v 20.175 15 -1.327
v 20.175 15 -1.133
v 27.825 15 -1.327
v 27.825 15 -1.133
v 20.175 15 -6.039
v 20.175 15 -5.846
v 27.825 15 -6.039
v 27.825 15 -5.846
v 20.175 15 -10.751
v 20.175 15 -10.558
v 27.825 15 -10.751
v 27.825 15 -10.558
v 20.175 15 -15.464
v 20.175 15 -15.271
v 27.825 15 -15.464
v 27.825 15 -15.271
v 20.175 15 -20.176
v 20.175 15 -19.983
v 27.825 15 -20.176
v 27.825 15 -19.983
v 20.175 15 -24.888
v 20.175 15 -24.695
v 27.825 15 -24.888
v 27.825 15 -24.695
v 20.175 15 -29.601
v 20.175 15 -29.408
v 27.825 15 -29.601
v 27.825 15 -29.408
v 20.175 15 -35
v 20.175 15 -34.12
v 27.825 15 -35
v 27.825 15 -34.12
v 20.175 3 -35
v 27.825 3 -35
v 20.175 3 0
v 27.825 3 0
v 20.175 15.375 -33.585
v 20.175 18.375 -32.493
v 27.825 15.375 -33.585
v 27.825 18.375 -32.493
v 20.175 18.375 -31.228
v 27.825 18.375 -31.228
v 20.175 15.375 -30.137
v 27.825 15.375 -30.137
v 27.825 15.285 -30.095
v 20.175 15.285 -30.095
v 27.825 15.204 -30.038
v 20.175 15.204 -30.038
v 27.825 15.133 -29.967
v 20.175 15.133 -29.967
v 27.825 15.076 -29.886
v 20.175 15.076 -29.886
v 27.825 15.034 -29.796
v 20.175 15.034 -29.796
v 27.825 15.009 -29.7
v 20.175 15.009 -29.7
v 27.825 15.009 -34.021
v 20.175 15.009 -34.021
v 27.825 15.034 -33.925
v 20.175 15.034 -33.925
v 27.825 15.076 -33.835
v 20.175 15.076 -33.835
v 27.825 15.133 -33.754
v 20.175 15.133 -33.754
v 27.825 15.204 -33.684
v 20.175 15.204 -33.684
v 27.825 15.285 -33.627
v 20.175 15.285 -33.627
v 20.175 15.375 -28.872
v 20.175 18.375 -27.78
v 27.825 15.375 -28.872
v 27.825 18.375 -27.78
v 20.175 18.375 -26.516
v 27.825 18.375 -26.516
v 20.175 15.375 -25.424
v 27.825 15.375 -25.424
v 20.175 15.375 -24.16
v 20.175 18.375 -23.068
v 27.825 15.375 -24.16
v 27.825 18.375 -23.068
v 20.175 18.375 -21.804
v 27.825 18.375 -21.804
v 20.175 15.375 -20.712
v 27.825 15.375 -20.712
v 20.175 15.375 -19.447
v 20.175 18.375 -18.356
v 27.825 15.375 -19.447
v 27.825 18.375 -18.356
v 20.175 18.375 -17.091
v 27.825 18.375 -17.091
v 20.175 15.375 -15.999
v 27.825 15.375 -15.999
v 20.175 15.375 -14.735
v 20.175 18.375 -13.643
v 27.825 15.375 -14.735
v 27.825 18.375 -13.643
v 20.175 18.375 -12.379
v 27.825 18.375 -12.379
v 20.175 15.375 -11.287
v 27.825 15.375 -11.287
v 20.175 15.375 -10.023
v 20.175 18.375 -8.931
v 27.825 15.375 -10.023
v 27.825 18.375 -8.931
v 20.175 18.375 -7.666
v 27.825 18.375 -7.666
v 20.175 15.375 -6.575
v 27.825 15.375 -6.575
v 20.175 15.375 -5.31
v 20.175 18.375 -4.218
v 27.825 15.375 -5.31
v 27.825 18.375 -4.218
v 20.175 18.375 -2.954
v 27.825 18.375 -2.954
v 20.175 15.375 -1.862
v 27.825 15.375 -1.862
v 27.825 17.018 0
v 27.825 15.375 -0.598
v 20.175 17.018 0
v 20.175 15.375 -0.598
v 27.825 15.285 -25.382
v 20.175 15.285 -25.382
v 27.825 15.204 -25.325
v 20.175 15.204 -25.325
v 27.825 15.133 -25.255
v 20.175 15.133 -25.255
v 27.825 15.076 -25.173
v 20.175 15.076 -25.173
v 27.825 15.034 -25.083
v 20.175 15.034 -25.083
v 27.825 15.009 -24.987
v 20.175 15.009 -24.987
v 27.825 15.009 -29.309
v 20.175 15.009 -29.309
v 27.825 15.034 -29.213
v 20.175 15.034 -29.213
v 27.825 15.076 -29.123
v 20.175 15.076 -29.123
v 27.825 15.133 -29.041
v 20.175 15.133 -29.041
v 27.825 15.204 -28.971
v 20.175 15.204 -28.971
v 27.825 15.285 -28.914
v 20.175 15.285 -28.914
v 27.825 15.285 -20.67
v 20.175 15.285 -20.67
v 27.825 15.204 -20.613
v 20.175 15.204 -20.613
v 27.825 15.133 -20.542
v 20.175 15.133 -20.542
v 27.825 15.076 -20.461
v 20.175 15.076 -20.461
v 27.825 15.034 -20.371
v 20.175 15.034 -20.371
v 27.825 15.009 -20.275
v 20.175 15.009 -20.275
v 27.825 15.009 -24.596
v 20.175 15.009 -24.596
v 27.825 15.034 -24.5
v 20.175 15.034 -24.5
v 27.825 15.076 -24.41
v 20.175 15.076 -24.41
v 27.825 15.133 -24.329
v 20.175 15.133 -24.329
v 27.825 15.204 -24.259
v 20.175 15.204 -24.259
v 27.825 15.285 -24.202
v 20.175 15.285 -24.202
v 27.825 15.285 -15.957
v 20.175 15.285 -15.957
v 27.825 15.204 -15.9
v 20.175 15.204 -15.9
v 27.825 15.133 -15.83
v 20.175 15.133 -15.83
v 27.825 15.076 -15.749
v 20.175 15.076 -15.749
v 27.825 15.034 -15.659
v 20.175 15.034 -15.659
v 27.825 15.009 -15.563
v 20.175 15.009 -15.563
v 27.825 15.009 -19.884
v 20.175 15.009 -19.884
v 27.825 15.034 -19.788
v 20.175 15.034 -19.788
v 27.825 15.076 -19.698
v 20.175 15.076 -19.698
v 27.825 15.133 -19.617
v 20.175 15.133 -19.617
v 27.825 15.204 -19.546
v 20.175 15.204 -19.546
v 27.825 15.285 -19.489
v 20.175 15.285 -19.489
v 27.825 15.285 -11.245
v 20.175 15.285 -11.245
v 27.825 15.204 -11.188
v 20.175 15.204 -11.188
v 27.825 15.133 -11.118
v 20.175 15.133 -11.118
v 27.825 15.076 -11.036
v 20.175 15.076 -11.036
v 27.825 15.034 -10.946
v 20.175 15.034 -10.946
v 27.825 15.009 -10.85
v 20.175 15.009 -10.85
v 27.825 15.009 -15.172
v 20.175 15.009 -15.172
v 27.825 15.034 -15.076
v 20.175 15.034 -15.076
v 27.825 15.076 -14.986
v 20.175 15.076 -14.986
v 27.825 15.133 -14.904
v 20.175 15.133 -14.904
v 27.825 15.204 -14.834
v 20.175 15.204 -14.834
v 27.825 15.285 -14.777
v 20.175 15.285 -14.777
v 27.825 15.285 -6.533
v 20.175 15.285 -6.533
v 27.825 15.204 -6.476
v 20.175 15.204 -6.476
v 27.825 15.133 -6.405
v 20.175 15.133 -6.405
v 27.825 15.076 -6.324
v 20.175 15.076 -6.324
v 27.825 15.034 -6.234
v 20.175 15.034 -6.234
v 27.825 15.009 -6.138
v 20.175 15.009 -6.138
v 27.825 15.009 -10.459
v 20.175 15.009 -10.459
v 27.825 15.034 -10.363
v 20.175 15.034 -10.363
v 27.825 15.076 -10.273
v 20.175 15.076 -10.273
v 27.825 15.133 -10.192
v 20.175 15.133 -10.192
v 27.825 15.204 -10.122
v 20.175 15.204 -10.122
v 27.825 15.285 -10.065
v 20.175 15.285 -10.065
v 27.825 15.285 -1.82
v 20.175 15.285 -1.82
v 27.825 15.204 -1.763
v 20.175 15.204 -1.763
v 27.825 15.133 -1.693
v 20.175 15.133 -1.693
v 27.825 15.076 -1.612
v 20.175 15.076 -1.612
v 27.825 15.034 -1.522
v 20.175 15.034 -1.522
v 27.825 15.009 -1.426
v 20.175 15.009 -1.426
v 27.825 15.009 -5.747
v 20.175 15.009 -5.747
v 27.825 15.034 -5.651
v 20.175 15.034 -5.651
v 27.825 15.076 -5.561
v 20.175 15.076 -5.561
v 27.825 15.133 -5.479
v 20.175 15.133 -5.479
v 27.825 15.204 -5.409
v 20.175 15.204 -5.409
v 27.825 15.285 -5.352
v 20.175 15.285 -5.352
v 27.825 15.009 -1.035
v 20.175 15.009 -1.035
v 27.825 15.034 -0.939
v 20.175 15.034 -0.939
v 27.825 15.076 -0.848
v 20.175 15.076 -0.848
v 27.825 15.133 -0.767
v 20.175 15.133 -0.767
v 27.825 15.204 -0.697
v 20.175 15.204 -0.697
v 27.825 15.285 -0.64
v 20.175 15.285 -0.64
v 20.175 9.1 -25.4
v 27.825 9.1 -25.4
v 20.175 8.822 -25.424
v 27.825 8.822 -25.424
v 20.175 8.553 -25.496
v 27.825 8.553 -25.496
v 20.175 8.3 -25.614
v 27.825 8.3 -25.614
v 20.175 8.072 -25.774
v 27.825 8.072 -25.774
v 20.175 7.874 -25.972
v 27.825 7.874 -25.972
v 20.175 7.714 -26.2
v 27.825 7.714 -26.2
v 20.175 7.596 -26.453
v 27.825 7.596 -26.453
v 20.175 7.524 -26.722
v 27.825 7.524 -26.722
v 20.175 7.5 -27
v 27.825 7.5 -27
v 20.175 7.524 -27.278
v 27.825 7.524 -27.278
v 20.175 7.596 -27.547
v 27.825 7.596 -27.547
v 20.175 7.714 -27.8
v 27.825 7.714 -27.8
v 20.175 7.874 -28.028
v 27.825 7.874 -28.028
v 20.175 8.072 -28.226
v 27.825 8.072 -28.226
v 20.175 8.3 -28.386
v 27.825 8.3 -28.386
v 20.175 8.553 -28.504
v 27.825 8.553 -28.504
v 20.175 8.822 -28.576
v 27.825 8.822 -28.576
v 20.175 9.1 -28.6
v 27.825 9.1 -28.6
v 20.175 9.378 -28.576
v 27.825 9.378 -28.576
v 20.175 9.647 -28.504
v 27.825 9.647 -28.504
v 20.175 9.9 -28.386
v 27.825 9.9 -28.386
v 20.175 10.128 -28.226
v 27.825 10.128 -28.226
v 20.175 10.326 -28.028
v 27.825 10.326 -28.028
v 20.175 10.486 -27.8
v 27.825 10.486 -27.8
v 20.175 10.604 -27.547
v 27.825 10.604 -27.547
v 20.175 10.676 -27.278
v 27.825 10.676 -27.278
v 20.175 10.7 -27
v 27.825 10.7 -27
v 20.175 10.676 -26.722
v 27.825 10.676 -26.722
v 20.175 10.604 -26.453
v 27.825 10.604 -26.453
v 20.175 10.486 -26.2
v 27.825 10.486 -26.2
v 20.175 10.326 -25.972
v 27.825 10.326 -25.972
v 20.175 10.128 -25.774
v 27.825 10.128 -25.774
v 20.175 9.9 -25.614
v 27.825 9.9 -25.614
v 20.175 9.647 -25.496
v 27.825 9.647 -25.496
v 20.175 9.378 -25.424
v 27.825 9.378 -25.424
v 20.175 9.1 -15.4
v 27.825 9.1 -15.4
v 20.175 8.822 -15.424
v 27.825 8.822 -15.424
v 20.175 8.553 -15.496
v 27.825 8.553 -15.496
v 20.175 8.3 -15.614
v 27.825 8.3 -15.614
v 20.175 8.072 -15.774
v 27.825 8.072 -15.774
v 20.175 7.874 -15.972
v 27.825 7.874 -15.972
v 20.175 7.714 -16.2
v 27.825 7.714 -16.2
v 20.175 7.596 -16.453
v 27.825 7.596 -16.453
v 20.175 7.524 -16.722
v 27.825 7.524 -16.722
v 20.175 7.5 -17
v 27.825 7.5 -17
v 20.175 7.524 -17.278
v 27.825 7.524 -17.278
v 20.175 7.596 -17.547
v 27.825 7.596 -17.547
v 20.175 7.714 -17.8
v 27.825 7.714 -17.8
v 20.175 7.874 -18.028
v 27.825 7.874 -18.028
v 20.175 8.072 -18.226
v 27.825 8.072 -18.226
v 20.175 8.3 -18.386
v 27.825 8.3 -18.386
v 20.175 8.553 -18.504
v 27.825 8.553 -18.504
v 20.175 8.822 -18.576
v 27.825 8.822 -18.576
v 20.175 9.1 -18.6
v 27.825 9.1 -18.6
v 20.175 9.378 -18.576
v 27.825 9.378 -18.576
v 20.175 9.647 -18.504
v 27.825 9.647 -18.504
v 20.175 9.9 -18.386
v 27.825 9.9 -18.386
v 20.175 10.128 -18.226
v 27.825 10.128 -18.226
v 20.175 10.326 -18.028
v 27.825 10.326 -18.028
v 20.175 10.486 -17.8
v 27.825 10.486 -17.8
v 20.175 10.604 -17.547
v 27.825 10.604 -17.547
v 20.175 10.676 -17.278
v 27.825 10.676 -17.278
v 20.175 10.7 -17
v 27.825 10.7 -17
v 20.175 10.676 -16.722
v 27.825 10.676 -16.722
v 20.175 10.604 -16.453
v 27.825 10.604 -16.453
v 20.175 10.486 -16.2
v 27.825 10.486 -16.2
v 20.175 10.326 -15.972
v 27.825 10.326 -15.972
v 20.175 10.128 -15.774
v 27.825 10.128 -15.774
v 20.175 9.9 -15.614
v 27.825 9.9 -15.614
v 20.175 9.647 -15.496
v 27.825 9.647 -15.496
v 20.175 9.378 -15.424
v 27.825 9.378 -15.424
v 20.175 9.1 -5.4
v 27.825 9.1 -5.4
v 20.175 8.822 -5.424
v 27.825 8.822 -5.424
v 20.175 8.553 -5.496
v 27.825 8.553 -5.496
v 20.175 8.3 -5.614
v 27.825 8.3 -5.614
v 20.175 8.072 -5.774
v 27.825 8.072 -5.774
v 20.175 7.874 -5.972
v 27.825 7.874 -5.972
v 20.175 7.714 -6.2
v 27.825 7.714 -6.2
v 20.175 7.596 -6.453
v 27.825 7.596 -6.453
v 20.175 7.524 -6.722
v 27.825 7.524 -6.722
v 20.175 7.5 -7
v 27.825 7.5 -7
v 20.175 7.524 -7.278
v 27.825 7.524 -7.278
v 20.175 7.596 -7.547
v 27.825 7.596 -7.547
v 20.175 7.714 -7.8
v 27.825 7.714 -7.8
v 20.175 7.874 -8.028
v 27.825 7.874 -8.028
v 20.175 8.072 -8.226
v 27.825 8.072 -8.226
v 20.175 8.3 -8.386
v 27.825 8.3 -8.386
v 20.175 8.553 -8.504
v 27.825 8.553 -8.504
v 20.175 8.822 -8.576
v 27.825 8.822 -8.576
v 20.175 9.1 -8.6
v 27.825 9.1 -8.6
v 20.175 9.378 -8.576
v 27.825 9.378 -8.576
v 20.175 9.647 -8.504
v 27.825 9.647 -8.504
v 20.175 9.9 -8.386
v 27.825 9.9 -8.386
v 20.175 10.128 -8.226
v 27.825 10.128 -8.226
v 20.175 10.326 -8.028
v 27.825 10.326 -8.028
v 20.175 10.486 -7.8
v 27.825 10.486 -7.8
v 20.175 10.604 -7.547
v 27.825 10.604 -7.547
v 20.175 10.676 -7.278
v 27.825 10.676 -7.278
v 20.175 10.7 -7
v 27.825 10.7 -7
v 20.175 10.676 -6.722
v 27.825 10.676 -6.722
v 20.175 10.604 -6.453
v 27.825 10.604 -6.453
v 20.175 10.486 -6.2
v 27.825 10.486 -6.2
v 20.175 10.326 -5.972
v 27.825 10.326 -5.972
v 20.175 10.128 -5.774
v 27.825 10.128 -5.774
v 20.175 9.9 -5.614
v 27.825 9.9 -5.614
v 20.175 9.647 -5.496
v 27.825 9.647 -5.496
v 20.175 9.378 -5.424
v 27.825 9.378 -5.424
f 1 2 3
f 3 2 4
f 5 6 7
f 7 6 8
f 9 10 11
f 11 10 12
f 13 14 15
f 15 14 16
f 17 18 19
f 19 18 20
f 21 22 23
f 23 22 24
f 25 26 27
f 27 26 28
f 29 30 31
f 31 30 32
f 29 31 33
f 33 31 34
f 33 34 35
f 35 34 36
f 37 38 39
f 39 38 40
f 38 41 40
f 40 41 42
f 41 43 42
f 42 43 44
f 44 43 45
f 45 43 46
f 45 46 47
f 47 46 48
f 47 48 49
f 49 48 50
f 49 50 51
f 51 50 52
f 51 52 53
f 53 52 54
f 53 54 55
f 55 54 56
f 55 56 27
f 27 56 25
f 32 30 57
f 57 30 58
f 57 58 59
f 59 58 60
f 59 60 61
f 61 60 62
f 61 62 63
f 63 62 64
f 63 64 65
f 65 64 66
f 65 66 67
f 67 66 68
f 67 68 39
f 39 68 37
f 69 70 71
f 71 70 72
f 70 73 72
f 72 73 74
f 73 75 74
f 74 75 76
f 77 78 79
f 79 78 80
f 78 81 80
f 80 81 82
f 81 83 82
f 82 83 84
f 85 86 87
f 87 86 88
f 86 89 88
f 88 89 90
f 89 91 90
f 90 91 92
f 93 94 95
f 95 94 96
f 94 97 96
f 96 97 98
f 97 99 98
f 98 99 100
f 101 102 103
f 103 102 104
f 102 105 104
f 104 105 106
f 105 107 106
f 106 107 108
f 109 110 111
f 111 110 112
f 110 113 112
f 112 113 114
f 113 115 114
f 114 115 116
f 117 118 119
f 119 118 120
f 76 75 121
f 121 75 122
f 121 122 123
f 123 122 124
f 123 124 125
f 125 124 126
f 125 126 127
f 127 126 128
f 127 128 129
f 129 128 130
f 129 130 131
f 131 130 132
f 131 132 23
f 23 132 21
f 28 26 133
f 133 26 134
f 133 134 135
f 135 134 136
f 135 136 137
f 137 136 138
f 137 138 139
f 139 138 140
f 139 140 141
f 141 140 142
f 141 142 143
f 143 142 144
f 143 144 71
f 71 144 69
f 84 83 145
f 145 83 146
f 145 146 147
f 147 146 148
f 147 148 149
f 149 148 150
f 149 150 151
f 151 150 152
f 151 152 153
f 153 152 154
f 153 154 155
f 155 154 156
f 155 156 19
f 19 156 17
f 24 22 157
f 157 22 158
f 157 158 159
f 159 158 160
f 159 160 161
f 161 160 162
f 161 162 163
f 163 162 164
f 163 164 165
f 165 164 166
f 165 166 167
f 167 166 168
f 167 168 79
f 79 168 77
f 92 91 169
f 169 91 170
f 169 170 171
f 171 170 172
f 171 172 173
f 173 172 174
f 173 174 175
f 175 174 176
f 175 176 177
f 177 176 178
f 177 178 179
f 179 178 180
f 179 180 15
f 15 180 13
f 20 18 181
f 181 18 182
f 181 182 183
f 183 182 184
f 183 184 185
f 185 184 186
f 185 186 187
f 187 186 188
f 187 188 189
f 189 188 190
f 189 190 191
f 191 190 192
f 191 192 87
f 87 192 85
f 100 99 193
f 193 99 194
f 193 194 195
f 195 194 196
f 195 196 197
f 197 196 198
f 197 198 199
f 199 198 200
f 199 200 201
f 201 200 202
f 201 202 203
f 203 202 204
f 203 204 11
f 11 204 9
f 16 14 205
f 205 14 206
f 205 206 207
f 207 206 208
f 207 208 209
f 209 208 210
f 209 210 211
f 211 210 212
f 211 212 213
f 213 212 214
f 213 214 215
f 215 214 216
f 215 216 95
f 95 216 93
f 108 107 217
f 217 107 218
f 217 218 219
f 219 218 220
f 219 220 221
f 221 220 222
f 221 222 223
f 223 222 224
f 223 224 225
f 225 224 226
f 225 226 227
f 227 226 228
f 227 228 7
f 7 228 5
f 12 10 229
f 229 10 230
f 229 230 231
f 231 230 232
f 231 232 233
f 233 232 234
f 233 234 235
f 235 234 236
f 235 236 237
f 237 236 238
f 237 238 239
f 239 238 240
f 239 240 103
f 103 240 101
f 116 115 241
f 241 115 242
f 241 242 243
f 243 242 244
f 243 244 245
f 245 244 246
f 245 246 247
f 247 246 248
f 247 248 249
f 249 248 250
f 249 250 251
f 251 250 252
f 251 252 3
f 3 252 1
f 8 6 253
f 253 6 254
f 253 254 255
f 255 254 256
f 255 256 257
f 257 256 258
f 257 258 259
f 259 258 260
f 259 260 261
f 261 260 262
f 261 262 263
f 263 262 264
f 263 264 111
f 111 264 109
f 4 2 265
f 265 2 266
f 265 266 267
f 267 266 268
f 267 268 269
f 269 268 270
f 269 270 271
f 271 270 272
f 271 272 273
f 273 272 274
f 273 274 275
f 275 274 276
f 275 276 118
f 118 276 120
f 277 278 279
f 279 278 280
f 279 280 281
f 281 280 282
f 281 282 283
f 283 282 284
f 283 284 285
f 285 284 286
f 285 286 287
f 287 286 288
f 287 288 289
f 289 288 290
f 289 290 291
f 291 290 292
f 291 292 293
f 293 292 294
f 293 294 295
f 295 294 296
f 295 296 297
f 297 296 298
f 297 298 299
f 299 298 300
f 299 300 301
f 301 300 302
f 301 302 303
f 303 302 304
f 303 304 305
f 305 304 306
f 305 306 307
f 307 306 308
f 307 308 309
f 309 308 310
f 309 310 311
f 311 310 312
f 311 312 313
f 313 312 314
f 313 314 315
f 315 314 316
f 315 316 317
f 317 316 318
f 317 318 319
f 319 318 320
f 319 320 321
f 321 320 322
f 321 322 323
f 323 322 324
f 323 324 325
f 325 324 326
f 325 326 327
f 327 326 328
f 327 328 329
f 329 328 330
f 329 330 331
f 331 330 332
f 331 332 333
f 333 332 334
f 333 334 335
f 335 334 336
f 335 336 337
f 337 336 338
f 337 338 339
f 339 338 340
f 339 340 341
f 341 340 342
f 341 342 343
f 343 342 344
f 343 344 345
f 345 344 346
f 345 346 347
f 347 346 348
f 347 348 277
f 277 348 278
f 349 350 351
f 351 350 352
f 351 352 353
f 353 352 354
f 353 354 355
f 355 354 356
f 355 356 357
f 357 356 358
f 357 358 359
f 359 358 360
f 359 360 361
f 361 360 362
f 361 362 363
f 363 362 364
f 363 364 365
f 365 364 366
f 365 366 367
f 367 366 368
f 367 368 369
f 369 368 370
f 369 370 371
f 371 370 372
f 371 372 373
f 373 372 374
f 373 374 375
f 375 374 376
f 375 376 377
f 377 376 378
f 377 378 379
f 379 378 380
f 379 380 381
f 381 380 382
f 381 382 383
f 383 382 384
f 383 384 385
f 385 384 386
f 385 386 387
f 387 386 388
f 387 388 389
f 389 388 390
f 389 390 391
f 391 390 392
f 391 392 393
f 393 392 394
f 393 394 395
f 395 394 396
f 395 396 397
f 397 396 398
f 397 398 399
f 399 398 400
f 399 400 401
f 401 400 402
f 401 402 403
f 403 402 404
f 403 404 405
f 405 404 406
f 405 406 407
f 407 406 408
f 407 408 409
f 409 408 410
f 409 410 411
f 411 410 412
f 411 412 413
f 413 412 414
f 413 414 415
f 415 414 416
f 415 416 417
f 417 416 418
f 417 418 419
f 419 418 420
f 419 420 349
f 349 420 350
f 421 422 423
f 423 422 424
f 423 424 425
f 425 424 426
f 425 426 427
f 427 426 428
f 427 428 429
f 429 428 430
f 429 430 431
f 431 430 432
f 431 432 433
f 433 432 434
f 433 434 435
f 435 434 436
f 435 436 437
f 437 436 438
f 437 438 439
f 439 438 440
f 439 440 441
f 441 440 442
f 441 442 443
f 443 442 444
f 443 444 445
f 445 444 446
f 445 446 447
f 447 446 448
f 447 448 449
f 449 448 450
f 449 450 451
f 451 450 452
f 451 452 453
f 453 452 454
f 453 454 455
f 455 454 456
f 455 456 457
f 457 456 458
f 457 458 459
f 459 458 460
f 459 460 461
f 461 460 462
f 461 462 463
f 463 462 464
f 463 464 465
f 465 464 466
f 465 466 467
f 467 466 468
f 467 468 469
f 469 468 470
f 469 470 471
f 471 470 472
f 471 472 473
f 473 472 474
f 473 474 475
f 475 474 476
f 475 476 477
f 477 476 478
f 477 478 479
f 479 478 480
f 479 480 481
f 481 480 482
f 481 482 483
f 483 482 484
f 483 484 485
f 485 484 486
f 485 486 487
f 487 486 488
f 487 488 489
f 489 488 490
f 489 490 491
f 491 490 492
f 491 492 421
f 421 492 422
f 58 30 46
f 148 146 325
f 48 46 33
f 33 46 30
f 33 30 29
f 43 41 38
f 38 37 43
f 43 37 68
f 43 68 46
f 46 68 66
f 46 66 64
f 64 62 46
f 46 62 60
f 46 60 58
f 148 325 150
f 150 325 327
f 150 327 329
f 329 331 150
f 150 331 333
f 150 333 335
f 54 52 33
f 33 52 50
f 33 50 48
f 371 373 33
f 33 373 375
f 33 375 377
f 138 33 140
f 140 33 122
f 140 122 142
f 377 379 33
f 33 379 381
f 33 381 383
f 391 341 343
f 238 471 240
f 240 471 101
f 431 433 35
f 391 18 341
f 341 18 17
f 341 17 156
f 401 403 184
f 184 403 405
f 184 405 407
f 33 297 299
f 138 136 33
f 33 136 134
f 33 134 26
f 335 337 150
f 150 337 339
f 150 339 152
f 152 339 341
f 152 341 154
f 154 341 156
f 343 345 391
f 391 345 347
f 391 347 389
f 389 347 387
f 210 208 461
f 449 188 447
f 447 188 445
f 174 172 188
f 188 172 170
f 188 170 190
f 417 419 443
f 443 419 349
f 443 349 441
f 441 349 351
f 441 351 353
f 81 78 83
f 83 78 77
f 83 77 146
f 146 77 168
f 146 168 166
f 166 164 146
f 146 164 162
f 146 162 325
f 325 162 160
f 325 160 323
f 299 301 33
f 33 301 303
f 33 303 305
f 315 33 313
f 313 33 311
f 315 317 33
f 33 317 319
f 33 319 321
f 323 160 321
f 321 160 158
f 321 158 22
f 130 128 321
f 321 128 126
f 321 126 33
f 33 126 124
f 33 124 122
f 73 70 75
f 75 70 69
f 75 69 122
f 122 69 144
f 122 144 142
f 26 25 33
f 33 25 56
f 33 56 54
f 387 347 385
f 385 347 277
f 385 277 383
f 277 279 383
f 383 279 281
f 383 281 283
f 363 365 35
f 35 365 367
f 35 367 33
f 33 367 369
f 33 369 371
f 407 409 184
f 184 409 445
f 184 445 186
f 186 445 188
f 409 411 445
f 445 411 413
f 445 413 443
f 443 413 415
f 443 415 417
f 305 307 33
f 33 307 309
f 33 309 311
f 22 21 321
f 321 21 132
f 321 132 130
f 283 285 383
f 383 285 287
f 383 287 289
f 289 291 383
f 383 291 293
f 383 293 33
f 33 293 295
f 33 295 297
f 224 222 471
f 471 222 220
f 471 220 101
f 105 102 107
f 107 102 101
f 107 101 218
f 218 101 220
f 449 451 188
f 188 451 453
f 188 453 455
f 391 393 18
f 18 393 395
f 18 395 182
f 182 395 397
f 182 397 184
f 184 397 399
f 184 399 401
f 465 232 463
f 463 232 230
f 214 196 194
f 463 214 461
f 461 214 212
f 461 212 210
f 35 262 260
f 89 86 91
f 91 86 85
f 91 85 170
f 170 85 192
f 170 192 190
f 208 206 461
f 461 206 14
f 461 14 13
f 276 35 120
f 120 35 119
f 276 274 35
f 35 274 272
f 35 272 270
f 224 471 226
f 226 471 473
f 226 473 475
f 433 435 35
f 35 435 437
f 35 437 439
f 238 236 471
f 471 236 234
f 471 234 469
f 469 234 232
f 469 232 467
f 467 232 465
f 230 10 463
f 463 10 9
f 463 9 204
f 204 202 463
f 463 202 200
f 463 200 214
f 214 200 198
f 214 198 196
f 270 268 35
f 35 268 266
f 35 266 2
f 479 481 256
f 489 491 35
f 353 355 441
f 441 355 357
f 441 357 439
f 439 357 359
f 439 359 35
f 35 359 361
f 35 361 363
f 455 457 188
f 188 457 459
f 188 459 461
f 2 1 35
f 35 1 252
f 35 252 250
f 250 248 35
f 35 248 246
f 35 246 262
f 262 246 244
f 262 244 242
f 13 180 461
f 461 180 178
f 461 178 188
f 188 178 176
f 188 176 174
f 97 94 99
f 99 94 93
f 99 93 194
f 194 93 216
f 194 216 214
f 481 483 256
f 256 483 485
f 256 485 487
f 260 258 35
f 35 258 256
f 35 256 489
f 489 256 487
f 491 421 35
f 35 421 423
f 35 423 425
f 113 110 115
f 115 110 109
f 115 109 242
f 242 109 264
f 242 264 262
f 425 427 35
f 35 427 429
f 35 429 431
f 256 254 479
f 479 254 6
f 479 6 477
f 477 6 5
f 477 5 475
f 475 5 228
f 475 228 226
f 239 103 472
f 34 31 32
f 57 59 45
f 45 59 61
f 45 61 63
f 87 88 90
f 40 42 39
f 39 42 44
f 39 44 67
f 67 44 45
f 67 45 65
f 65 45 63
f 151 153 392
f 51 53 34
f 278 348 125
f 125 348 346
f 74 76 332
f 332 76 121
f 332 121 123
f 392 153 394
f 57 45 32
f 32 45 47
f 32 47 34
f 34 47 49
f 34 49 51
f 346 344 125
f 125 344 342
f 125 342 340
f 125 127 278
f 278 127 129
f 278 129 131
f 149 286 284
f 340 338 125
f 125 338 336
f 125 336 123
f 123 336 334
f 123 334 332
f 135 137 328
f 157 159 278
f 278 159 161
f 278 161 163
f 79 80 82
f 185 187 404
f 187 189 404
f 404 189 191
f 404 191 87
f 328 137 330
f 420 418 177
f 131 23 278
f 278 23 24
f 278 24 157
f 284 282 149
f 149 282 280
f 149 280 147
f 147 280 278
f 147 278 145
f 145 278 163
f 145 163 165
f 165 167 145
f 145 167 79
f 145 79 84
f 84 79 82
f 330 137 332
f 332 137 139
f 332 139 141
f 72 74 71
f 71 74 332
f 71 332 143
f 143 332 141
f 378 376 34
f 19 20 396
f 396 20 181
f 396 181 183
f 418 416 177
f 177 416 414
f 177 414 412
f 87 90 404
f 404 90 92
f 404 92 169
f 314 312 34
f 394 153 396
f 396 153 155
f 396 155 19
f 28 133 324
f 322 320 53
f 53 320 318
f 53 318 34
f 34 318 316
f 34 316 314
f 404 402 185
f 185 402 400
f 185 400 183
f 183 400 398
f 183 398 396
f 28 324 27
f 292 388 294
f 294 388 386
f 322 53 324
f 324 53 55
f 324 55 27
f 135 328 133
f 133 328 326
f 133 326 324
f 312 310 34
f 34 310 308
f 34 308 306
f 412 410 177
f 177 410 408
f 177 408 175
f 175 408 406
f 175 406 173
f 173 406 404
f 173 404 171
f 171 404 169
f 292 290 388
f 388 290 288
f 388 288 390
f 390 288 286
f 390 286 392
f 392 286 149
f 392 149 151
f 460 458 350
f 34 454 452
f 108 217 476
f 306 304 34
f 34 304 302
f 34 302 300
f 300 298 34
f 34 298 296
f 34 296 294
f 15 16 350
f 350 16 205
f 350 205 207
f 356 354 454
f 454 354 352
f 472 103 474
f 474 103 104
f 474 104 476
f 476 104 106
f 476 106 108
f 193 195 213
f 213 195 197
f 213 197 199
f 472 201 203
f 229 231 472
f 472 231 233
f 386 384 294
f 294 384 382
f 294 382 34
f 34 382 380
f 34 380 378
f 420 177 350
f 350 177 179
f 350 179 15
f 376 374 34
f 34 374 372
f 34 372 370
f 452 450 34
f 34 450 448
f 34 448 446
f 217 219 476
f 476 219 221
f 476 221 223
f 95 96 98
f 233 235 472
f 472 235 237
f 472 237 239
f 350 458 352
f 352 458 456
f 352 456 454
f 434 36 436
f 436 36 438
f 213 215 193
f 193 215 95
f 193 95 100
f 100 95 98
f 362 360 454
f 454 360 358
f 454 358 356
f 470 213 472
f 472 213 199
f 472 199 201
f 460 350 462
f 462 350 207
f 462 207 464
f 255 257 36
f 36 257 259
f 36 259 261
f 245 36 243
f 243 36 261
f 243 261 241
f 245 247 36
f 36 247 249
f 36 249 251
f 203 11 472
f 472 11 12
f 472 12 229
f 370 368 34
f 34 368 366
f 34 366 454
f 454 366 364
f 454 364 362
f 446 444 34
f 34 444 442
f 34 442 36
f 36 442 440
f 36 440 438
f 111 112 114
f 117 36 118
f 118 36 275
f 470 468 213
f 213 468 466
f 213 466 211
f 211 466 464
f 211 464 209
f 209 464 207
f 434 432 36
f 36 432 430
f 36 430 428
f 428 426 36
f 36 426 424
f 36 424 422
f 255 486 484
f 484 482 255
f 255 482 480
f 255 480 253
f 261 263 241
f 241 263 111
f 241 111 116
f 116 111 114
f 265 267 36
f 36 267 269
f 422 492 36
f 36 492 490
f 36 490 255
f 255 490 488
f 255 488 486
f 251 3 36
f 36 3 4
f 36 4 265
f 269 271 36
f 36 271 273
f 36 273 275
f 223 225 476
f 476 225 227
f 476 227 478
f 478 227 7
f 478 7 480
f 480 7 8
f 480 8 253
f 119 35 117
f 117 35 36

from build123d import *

# Parameters (mm, degrees)
ESQUISSE1_W                 = 24
ESQUISSE1_H                 = 30
MAIN_EXTRUSION_DEPTH        = 30
MAIN_RIDING_HOLE_DEPTH      = 31
ESQUISSE4_R                 = 2.25
TRACTORHOLE_DEPTH           = 8
IMPACTPIECE_DEPTH           = 4.5
CONG_1_R                    = 3
TEETH_DEPTH                 = 4.5
CONG_3_R                    = 0.57
TEETHREPETITION_COUNT       = 8
TEETHREPETITION_PITCH       = 4.71238898
CONG_3_OF_TEETHREPETITION_R = 0.57
ESQUISSE9_W                 = 55
ESQUISSE9_H                 = 15.375
BRACKET_DEPTH               = 0.675
BRACKETHOLE_START           = -8.5
ESQUISSE10_R                = 1.6
BRACKETHOLE_DEPTH           = 26
BRACKETHOLEREPETITION_COUNT = 5
BRACKETHOLEREPETITION_PITCH = 10
ESQUISSE11_W                = 7.5
ESQUISSE11_H                = 5.5
ESQUISSE11_H_2              = 7.6
RAILHOLE_DEPTH              = 20
TOPIMPACTCUT_DEPTH          = 17.5
ESQUISSE13_W                = 24
ESQUISSE13_H                = 50
MAKERBEAMMAINHOLE_DEPTH     = 81
SKETCH1_W                   = 24
SKETCH1_H                   = 45
KEEPONLYTRACTOR1_DEPTH      = 51


with BuildPart() as part:
    # Esquisse1 → Main Extrusion (new body)
    with BuildSketch(Plane.XY):
        Rectangle(ESQUISSE1_W, ESQUISSE1_H)
    extrude(amount=MAIN_EXTRUSION_DEPTH)

    # Esquisse3 → Main Riding Hole (cut, through all)
    with BuildSketch(Plane(origin=(0, 0, 0), x_dir=(-1, 0, 0), z_dir=(0, 0, -1))):
        Polygon((-5.2, -1.6), (-5.2, -5.4), (-4.2, -5.4), (-4.2, -8.2), (-5.2, -8.2), (-5.2, -12), (-1.4, -12), (-1.4, -11), (1.4, -11), (1.4, -12), (5.2, -12), (5.2, -8.2), (4.2, -8.2), (4.2, -5.4), (5.2, -5.4), (5.2, -1.6), (1.4, -1.6), (1.4, -2.6), (-1.4, -2.6), (-1.4, -1.6), align=None)
    extrude(amount=-MAIN_RIDING_HOLE_DEPTH, mode=Mode.SUBTRACT)

    # Esquisse4 → TractorHole (cut)
    with BuildSketch(Plane.ZY.offset(12)):
        with Locations((5, -6.8)):
            Circle(ESQUISSE4_R)
    tractorhole = extrude(amount=-TRACTORHOLE_DEPTH, mode=Mode.SUBTRACT)

    # TractorHoleSymetry: TractorHole across plane
    add(tractorhole.mirror(Plane(origin=(0, 0, 0), x_dir=(0, 0, 1), z_dir=(1, 0, 0))), mode=Mode.SUBTRACT)

    # Esquisse5 → ImpactPiece (add, symmetric)
    with BuildSketch(Plane(origin=(0, 0, 0), x_dir=(0, 0, -1), z_dir=(1, 0, 0))):
        Polygon((-45, 5), (-45, 35), (-25, 35), (-21.473460386, 15), (35, 15), (35, 3), (0, 3), (0, 5), align=None)
    extrude(amount=IMPACTPIECE_DEPTH, both=True)

    # Congé1
    cong_1_edges = [part.edges().sort_by_distance(p)[0] for p in [
        (4.5, 15, 25.736730193),
        (-4.5, 15, 25.736730193),
    ]]
    fillet(cong_1_edges, radius=CONG_1_R)

    # Esquisse8 → Teeth (add, symmetric)
    with BuildSketch(Plane(origin=(0, 0, 0), x_dir=(0, 0, -1), z_dir=(1, 0, 0))):
        Polygon((30, 15), (31.228399541, 18.375), (32.492683328, 18.375), (33.721082869, 15), align=None)
    teeth = extrude(amount=TEETH_DEPTH, both=True)

    # Congé3
    cong_3_edges = [part.edges().sort_by_distance(p)[0] for p in [
        (0, 15, -30),
        (0, 15, -33.721082869),
    ]]
    fillet(cong_3_edges, radius=CONG_3_R)

    # TeethRepetition: Teeth ×8
    with Locations(*[(0, 0, i * TEETHREPETITION_PITCH) for i in range(1, TEETHREPETITION_COUNT)]):
        add(teeth)

    # Congé3 of TeethRepetition
    cong_3_of_teethrepetition_edges = [part.edges().sort_by_distance(p)[0] for p in [
        (0, 15, -25.28761102),
        (0, 15, -29.008693889),
        (0, 15, -20.57522204),
        (0, 15, -24.296304909),
        (0, 15, -15.86283306),
        (0, 15, -19.583915929),
        (0, 15, -11.15044408),
        (0, 15, -14.871526949),
        (0, 15, -6.4380551),
        (0, 15, -10.159137969),
        (0, 15, -1.72566612),
        (0, 15, -5.446748989),
        (0, 15, 2.98672286),
        (0, 15, -0.734360009),
    ]]
    fillet(cong_3_of_teethrepetition_edges, radius=CONG_3_OF_TEETHREPETITION_R)

    # Esquisse9 → Bracket (cut, symmetric)
    with BuildSketch(Plane(origin=(4.5, 0, 0), x_dir=(0, 0, -1), z_dir=(1, 0, 0))):
        with Locations((7.5, 10.6875)):
            Rectangle(ESQUISSE9_W, ESQUISSE9_H)
    bracket = extrude(amount=BRACKET_DEPTH, both=True, mode=Mode.SUBTRACT)

    # Esquisse10 → BracketHole (cut)
    with BuildSketch(Plane.ZY.offset(-4.5).offset(BRACKETHOLE_START)):
        with Locations((-27, 9.1)):
            Circle(ESQUISSE10_R)
    brackethole = extrude(amount=BRACKETHOLE_DEPTH, mode=Mode.SUBTRACT)

    # BracketHoleRepetition: BracketHole ×5
    with Locations(*[(0, 0, i * BRACKETHOLEREPETITION_PITCH) for i in range(1, BRACKETHOLEREPETITION_COUNT)]):
        add(brackethole, mode=Mode.SUBTRACT)

    # Symétrie1: Bracket across plane
    add(bracket.mirror(Plane(origin=(0, 0, 0), x_dir=(0, 0, 1), z_dir=(1, 0, 0))), mode=Mode.SUBTRACT)

    # Esquisse11 → RailHole (cut)
    with BuildSketch(Plane(origin=(0, 0, 0), x_dir=(-1, 0, 0), z_dir=(0, 0, -1))):
        with Locations((8.25, 3.15)):
            Rectangle(ESQUISSE11_W, ESQUISSE11_H)
        with Locations((8.25, 16.2)):
            Rectangle(ESQUISSE11_W, ESQUISSE11_H_2)
    extrude(amount=-RAILHOLE_DEPTH, mode=Mode.SUBTRACT)

    # Esquisse12 → TopImpactCut (cut, through all)
    with BuildSketch(Plane(origin=(4.5, 0, 0), x_dir=(0, 0, -1), z_dir=(1, 0, 0))):
        Polygon((-45, 30), (-40, 35), (-45, 35), align=None)
    extrude(amount=-TOPIMPACTCUT_DEPTH, mode=Mode.SUBTRACT)


with BuildPart() as body_2:
    # Symétrie2: mirrored copy
    add(part.part.mirror(Plane(origin=(12, 15, 30), x_dir=(0, 0, 1), z_dir=(-1, 0, 0))))

    # Sketch1 → KeepOnlyTractor1 (cut, through all)
    with BuildSketch(Plane(origin=(0, 35, 0), x_dir=(1, 0, 0), z_dir=(0, 1, 0))):
        with Locations((24, -22.5)):
            Rectangle(SKETCH1_W, SKETCH1_H)
    extrude(amount=-KEEPONLYTRACTOR1_DEPTH, mode=Mode.SUBTRACT)


with BuildPart() as part_1:
    add(part.part)

    # Esquisse13 → MakerBeamMainHole (cut, through all)
    with BuildSketch(Plane(origin=(0, 0, -35), x_dir=(-1, 0, 0), z_dir=(0, 0, -1))):
        with Locations((0, 10)):
            Rectangle(ESQUISSE13_W, ESQUISSE13_H)
    extrude(amount=-MAKERBEAMMAINHOLE_DEPTH, mode=Mode.SUBTRACT)


solid = body_2.part
